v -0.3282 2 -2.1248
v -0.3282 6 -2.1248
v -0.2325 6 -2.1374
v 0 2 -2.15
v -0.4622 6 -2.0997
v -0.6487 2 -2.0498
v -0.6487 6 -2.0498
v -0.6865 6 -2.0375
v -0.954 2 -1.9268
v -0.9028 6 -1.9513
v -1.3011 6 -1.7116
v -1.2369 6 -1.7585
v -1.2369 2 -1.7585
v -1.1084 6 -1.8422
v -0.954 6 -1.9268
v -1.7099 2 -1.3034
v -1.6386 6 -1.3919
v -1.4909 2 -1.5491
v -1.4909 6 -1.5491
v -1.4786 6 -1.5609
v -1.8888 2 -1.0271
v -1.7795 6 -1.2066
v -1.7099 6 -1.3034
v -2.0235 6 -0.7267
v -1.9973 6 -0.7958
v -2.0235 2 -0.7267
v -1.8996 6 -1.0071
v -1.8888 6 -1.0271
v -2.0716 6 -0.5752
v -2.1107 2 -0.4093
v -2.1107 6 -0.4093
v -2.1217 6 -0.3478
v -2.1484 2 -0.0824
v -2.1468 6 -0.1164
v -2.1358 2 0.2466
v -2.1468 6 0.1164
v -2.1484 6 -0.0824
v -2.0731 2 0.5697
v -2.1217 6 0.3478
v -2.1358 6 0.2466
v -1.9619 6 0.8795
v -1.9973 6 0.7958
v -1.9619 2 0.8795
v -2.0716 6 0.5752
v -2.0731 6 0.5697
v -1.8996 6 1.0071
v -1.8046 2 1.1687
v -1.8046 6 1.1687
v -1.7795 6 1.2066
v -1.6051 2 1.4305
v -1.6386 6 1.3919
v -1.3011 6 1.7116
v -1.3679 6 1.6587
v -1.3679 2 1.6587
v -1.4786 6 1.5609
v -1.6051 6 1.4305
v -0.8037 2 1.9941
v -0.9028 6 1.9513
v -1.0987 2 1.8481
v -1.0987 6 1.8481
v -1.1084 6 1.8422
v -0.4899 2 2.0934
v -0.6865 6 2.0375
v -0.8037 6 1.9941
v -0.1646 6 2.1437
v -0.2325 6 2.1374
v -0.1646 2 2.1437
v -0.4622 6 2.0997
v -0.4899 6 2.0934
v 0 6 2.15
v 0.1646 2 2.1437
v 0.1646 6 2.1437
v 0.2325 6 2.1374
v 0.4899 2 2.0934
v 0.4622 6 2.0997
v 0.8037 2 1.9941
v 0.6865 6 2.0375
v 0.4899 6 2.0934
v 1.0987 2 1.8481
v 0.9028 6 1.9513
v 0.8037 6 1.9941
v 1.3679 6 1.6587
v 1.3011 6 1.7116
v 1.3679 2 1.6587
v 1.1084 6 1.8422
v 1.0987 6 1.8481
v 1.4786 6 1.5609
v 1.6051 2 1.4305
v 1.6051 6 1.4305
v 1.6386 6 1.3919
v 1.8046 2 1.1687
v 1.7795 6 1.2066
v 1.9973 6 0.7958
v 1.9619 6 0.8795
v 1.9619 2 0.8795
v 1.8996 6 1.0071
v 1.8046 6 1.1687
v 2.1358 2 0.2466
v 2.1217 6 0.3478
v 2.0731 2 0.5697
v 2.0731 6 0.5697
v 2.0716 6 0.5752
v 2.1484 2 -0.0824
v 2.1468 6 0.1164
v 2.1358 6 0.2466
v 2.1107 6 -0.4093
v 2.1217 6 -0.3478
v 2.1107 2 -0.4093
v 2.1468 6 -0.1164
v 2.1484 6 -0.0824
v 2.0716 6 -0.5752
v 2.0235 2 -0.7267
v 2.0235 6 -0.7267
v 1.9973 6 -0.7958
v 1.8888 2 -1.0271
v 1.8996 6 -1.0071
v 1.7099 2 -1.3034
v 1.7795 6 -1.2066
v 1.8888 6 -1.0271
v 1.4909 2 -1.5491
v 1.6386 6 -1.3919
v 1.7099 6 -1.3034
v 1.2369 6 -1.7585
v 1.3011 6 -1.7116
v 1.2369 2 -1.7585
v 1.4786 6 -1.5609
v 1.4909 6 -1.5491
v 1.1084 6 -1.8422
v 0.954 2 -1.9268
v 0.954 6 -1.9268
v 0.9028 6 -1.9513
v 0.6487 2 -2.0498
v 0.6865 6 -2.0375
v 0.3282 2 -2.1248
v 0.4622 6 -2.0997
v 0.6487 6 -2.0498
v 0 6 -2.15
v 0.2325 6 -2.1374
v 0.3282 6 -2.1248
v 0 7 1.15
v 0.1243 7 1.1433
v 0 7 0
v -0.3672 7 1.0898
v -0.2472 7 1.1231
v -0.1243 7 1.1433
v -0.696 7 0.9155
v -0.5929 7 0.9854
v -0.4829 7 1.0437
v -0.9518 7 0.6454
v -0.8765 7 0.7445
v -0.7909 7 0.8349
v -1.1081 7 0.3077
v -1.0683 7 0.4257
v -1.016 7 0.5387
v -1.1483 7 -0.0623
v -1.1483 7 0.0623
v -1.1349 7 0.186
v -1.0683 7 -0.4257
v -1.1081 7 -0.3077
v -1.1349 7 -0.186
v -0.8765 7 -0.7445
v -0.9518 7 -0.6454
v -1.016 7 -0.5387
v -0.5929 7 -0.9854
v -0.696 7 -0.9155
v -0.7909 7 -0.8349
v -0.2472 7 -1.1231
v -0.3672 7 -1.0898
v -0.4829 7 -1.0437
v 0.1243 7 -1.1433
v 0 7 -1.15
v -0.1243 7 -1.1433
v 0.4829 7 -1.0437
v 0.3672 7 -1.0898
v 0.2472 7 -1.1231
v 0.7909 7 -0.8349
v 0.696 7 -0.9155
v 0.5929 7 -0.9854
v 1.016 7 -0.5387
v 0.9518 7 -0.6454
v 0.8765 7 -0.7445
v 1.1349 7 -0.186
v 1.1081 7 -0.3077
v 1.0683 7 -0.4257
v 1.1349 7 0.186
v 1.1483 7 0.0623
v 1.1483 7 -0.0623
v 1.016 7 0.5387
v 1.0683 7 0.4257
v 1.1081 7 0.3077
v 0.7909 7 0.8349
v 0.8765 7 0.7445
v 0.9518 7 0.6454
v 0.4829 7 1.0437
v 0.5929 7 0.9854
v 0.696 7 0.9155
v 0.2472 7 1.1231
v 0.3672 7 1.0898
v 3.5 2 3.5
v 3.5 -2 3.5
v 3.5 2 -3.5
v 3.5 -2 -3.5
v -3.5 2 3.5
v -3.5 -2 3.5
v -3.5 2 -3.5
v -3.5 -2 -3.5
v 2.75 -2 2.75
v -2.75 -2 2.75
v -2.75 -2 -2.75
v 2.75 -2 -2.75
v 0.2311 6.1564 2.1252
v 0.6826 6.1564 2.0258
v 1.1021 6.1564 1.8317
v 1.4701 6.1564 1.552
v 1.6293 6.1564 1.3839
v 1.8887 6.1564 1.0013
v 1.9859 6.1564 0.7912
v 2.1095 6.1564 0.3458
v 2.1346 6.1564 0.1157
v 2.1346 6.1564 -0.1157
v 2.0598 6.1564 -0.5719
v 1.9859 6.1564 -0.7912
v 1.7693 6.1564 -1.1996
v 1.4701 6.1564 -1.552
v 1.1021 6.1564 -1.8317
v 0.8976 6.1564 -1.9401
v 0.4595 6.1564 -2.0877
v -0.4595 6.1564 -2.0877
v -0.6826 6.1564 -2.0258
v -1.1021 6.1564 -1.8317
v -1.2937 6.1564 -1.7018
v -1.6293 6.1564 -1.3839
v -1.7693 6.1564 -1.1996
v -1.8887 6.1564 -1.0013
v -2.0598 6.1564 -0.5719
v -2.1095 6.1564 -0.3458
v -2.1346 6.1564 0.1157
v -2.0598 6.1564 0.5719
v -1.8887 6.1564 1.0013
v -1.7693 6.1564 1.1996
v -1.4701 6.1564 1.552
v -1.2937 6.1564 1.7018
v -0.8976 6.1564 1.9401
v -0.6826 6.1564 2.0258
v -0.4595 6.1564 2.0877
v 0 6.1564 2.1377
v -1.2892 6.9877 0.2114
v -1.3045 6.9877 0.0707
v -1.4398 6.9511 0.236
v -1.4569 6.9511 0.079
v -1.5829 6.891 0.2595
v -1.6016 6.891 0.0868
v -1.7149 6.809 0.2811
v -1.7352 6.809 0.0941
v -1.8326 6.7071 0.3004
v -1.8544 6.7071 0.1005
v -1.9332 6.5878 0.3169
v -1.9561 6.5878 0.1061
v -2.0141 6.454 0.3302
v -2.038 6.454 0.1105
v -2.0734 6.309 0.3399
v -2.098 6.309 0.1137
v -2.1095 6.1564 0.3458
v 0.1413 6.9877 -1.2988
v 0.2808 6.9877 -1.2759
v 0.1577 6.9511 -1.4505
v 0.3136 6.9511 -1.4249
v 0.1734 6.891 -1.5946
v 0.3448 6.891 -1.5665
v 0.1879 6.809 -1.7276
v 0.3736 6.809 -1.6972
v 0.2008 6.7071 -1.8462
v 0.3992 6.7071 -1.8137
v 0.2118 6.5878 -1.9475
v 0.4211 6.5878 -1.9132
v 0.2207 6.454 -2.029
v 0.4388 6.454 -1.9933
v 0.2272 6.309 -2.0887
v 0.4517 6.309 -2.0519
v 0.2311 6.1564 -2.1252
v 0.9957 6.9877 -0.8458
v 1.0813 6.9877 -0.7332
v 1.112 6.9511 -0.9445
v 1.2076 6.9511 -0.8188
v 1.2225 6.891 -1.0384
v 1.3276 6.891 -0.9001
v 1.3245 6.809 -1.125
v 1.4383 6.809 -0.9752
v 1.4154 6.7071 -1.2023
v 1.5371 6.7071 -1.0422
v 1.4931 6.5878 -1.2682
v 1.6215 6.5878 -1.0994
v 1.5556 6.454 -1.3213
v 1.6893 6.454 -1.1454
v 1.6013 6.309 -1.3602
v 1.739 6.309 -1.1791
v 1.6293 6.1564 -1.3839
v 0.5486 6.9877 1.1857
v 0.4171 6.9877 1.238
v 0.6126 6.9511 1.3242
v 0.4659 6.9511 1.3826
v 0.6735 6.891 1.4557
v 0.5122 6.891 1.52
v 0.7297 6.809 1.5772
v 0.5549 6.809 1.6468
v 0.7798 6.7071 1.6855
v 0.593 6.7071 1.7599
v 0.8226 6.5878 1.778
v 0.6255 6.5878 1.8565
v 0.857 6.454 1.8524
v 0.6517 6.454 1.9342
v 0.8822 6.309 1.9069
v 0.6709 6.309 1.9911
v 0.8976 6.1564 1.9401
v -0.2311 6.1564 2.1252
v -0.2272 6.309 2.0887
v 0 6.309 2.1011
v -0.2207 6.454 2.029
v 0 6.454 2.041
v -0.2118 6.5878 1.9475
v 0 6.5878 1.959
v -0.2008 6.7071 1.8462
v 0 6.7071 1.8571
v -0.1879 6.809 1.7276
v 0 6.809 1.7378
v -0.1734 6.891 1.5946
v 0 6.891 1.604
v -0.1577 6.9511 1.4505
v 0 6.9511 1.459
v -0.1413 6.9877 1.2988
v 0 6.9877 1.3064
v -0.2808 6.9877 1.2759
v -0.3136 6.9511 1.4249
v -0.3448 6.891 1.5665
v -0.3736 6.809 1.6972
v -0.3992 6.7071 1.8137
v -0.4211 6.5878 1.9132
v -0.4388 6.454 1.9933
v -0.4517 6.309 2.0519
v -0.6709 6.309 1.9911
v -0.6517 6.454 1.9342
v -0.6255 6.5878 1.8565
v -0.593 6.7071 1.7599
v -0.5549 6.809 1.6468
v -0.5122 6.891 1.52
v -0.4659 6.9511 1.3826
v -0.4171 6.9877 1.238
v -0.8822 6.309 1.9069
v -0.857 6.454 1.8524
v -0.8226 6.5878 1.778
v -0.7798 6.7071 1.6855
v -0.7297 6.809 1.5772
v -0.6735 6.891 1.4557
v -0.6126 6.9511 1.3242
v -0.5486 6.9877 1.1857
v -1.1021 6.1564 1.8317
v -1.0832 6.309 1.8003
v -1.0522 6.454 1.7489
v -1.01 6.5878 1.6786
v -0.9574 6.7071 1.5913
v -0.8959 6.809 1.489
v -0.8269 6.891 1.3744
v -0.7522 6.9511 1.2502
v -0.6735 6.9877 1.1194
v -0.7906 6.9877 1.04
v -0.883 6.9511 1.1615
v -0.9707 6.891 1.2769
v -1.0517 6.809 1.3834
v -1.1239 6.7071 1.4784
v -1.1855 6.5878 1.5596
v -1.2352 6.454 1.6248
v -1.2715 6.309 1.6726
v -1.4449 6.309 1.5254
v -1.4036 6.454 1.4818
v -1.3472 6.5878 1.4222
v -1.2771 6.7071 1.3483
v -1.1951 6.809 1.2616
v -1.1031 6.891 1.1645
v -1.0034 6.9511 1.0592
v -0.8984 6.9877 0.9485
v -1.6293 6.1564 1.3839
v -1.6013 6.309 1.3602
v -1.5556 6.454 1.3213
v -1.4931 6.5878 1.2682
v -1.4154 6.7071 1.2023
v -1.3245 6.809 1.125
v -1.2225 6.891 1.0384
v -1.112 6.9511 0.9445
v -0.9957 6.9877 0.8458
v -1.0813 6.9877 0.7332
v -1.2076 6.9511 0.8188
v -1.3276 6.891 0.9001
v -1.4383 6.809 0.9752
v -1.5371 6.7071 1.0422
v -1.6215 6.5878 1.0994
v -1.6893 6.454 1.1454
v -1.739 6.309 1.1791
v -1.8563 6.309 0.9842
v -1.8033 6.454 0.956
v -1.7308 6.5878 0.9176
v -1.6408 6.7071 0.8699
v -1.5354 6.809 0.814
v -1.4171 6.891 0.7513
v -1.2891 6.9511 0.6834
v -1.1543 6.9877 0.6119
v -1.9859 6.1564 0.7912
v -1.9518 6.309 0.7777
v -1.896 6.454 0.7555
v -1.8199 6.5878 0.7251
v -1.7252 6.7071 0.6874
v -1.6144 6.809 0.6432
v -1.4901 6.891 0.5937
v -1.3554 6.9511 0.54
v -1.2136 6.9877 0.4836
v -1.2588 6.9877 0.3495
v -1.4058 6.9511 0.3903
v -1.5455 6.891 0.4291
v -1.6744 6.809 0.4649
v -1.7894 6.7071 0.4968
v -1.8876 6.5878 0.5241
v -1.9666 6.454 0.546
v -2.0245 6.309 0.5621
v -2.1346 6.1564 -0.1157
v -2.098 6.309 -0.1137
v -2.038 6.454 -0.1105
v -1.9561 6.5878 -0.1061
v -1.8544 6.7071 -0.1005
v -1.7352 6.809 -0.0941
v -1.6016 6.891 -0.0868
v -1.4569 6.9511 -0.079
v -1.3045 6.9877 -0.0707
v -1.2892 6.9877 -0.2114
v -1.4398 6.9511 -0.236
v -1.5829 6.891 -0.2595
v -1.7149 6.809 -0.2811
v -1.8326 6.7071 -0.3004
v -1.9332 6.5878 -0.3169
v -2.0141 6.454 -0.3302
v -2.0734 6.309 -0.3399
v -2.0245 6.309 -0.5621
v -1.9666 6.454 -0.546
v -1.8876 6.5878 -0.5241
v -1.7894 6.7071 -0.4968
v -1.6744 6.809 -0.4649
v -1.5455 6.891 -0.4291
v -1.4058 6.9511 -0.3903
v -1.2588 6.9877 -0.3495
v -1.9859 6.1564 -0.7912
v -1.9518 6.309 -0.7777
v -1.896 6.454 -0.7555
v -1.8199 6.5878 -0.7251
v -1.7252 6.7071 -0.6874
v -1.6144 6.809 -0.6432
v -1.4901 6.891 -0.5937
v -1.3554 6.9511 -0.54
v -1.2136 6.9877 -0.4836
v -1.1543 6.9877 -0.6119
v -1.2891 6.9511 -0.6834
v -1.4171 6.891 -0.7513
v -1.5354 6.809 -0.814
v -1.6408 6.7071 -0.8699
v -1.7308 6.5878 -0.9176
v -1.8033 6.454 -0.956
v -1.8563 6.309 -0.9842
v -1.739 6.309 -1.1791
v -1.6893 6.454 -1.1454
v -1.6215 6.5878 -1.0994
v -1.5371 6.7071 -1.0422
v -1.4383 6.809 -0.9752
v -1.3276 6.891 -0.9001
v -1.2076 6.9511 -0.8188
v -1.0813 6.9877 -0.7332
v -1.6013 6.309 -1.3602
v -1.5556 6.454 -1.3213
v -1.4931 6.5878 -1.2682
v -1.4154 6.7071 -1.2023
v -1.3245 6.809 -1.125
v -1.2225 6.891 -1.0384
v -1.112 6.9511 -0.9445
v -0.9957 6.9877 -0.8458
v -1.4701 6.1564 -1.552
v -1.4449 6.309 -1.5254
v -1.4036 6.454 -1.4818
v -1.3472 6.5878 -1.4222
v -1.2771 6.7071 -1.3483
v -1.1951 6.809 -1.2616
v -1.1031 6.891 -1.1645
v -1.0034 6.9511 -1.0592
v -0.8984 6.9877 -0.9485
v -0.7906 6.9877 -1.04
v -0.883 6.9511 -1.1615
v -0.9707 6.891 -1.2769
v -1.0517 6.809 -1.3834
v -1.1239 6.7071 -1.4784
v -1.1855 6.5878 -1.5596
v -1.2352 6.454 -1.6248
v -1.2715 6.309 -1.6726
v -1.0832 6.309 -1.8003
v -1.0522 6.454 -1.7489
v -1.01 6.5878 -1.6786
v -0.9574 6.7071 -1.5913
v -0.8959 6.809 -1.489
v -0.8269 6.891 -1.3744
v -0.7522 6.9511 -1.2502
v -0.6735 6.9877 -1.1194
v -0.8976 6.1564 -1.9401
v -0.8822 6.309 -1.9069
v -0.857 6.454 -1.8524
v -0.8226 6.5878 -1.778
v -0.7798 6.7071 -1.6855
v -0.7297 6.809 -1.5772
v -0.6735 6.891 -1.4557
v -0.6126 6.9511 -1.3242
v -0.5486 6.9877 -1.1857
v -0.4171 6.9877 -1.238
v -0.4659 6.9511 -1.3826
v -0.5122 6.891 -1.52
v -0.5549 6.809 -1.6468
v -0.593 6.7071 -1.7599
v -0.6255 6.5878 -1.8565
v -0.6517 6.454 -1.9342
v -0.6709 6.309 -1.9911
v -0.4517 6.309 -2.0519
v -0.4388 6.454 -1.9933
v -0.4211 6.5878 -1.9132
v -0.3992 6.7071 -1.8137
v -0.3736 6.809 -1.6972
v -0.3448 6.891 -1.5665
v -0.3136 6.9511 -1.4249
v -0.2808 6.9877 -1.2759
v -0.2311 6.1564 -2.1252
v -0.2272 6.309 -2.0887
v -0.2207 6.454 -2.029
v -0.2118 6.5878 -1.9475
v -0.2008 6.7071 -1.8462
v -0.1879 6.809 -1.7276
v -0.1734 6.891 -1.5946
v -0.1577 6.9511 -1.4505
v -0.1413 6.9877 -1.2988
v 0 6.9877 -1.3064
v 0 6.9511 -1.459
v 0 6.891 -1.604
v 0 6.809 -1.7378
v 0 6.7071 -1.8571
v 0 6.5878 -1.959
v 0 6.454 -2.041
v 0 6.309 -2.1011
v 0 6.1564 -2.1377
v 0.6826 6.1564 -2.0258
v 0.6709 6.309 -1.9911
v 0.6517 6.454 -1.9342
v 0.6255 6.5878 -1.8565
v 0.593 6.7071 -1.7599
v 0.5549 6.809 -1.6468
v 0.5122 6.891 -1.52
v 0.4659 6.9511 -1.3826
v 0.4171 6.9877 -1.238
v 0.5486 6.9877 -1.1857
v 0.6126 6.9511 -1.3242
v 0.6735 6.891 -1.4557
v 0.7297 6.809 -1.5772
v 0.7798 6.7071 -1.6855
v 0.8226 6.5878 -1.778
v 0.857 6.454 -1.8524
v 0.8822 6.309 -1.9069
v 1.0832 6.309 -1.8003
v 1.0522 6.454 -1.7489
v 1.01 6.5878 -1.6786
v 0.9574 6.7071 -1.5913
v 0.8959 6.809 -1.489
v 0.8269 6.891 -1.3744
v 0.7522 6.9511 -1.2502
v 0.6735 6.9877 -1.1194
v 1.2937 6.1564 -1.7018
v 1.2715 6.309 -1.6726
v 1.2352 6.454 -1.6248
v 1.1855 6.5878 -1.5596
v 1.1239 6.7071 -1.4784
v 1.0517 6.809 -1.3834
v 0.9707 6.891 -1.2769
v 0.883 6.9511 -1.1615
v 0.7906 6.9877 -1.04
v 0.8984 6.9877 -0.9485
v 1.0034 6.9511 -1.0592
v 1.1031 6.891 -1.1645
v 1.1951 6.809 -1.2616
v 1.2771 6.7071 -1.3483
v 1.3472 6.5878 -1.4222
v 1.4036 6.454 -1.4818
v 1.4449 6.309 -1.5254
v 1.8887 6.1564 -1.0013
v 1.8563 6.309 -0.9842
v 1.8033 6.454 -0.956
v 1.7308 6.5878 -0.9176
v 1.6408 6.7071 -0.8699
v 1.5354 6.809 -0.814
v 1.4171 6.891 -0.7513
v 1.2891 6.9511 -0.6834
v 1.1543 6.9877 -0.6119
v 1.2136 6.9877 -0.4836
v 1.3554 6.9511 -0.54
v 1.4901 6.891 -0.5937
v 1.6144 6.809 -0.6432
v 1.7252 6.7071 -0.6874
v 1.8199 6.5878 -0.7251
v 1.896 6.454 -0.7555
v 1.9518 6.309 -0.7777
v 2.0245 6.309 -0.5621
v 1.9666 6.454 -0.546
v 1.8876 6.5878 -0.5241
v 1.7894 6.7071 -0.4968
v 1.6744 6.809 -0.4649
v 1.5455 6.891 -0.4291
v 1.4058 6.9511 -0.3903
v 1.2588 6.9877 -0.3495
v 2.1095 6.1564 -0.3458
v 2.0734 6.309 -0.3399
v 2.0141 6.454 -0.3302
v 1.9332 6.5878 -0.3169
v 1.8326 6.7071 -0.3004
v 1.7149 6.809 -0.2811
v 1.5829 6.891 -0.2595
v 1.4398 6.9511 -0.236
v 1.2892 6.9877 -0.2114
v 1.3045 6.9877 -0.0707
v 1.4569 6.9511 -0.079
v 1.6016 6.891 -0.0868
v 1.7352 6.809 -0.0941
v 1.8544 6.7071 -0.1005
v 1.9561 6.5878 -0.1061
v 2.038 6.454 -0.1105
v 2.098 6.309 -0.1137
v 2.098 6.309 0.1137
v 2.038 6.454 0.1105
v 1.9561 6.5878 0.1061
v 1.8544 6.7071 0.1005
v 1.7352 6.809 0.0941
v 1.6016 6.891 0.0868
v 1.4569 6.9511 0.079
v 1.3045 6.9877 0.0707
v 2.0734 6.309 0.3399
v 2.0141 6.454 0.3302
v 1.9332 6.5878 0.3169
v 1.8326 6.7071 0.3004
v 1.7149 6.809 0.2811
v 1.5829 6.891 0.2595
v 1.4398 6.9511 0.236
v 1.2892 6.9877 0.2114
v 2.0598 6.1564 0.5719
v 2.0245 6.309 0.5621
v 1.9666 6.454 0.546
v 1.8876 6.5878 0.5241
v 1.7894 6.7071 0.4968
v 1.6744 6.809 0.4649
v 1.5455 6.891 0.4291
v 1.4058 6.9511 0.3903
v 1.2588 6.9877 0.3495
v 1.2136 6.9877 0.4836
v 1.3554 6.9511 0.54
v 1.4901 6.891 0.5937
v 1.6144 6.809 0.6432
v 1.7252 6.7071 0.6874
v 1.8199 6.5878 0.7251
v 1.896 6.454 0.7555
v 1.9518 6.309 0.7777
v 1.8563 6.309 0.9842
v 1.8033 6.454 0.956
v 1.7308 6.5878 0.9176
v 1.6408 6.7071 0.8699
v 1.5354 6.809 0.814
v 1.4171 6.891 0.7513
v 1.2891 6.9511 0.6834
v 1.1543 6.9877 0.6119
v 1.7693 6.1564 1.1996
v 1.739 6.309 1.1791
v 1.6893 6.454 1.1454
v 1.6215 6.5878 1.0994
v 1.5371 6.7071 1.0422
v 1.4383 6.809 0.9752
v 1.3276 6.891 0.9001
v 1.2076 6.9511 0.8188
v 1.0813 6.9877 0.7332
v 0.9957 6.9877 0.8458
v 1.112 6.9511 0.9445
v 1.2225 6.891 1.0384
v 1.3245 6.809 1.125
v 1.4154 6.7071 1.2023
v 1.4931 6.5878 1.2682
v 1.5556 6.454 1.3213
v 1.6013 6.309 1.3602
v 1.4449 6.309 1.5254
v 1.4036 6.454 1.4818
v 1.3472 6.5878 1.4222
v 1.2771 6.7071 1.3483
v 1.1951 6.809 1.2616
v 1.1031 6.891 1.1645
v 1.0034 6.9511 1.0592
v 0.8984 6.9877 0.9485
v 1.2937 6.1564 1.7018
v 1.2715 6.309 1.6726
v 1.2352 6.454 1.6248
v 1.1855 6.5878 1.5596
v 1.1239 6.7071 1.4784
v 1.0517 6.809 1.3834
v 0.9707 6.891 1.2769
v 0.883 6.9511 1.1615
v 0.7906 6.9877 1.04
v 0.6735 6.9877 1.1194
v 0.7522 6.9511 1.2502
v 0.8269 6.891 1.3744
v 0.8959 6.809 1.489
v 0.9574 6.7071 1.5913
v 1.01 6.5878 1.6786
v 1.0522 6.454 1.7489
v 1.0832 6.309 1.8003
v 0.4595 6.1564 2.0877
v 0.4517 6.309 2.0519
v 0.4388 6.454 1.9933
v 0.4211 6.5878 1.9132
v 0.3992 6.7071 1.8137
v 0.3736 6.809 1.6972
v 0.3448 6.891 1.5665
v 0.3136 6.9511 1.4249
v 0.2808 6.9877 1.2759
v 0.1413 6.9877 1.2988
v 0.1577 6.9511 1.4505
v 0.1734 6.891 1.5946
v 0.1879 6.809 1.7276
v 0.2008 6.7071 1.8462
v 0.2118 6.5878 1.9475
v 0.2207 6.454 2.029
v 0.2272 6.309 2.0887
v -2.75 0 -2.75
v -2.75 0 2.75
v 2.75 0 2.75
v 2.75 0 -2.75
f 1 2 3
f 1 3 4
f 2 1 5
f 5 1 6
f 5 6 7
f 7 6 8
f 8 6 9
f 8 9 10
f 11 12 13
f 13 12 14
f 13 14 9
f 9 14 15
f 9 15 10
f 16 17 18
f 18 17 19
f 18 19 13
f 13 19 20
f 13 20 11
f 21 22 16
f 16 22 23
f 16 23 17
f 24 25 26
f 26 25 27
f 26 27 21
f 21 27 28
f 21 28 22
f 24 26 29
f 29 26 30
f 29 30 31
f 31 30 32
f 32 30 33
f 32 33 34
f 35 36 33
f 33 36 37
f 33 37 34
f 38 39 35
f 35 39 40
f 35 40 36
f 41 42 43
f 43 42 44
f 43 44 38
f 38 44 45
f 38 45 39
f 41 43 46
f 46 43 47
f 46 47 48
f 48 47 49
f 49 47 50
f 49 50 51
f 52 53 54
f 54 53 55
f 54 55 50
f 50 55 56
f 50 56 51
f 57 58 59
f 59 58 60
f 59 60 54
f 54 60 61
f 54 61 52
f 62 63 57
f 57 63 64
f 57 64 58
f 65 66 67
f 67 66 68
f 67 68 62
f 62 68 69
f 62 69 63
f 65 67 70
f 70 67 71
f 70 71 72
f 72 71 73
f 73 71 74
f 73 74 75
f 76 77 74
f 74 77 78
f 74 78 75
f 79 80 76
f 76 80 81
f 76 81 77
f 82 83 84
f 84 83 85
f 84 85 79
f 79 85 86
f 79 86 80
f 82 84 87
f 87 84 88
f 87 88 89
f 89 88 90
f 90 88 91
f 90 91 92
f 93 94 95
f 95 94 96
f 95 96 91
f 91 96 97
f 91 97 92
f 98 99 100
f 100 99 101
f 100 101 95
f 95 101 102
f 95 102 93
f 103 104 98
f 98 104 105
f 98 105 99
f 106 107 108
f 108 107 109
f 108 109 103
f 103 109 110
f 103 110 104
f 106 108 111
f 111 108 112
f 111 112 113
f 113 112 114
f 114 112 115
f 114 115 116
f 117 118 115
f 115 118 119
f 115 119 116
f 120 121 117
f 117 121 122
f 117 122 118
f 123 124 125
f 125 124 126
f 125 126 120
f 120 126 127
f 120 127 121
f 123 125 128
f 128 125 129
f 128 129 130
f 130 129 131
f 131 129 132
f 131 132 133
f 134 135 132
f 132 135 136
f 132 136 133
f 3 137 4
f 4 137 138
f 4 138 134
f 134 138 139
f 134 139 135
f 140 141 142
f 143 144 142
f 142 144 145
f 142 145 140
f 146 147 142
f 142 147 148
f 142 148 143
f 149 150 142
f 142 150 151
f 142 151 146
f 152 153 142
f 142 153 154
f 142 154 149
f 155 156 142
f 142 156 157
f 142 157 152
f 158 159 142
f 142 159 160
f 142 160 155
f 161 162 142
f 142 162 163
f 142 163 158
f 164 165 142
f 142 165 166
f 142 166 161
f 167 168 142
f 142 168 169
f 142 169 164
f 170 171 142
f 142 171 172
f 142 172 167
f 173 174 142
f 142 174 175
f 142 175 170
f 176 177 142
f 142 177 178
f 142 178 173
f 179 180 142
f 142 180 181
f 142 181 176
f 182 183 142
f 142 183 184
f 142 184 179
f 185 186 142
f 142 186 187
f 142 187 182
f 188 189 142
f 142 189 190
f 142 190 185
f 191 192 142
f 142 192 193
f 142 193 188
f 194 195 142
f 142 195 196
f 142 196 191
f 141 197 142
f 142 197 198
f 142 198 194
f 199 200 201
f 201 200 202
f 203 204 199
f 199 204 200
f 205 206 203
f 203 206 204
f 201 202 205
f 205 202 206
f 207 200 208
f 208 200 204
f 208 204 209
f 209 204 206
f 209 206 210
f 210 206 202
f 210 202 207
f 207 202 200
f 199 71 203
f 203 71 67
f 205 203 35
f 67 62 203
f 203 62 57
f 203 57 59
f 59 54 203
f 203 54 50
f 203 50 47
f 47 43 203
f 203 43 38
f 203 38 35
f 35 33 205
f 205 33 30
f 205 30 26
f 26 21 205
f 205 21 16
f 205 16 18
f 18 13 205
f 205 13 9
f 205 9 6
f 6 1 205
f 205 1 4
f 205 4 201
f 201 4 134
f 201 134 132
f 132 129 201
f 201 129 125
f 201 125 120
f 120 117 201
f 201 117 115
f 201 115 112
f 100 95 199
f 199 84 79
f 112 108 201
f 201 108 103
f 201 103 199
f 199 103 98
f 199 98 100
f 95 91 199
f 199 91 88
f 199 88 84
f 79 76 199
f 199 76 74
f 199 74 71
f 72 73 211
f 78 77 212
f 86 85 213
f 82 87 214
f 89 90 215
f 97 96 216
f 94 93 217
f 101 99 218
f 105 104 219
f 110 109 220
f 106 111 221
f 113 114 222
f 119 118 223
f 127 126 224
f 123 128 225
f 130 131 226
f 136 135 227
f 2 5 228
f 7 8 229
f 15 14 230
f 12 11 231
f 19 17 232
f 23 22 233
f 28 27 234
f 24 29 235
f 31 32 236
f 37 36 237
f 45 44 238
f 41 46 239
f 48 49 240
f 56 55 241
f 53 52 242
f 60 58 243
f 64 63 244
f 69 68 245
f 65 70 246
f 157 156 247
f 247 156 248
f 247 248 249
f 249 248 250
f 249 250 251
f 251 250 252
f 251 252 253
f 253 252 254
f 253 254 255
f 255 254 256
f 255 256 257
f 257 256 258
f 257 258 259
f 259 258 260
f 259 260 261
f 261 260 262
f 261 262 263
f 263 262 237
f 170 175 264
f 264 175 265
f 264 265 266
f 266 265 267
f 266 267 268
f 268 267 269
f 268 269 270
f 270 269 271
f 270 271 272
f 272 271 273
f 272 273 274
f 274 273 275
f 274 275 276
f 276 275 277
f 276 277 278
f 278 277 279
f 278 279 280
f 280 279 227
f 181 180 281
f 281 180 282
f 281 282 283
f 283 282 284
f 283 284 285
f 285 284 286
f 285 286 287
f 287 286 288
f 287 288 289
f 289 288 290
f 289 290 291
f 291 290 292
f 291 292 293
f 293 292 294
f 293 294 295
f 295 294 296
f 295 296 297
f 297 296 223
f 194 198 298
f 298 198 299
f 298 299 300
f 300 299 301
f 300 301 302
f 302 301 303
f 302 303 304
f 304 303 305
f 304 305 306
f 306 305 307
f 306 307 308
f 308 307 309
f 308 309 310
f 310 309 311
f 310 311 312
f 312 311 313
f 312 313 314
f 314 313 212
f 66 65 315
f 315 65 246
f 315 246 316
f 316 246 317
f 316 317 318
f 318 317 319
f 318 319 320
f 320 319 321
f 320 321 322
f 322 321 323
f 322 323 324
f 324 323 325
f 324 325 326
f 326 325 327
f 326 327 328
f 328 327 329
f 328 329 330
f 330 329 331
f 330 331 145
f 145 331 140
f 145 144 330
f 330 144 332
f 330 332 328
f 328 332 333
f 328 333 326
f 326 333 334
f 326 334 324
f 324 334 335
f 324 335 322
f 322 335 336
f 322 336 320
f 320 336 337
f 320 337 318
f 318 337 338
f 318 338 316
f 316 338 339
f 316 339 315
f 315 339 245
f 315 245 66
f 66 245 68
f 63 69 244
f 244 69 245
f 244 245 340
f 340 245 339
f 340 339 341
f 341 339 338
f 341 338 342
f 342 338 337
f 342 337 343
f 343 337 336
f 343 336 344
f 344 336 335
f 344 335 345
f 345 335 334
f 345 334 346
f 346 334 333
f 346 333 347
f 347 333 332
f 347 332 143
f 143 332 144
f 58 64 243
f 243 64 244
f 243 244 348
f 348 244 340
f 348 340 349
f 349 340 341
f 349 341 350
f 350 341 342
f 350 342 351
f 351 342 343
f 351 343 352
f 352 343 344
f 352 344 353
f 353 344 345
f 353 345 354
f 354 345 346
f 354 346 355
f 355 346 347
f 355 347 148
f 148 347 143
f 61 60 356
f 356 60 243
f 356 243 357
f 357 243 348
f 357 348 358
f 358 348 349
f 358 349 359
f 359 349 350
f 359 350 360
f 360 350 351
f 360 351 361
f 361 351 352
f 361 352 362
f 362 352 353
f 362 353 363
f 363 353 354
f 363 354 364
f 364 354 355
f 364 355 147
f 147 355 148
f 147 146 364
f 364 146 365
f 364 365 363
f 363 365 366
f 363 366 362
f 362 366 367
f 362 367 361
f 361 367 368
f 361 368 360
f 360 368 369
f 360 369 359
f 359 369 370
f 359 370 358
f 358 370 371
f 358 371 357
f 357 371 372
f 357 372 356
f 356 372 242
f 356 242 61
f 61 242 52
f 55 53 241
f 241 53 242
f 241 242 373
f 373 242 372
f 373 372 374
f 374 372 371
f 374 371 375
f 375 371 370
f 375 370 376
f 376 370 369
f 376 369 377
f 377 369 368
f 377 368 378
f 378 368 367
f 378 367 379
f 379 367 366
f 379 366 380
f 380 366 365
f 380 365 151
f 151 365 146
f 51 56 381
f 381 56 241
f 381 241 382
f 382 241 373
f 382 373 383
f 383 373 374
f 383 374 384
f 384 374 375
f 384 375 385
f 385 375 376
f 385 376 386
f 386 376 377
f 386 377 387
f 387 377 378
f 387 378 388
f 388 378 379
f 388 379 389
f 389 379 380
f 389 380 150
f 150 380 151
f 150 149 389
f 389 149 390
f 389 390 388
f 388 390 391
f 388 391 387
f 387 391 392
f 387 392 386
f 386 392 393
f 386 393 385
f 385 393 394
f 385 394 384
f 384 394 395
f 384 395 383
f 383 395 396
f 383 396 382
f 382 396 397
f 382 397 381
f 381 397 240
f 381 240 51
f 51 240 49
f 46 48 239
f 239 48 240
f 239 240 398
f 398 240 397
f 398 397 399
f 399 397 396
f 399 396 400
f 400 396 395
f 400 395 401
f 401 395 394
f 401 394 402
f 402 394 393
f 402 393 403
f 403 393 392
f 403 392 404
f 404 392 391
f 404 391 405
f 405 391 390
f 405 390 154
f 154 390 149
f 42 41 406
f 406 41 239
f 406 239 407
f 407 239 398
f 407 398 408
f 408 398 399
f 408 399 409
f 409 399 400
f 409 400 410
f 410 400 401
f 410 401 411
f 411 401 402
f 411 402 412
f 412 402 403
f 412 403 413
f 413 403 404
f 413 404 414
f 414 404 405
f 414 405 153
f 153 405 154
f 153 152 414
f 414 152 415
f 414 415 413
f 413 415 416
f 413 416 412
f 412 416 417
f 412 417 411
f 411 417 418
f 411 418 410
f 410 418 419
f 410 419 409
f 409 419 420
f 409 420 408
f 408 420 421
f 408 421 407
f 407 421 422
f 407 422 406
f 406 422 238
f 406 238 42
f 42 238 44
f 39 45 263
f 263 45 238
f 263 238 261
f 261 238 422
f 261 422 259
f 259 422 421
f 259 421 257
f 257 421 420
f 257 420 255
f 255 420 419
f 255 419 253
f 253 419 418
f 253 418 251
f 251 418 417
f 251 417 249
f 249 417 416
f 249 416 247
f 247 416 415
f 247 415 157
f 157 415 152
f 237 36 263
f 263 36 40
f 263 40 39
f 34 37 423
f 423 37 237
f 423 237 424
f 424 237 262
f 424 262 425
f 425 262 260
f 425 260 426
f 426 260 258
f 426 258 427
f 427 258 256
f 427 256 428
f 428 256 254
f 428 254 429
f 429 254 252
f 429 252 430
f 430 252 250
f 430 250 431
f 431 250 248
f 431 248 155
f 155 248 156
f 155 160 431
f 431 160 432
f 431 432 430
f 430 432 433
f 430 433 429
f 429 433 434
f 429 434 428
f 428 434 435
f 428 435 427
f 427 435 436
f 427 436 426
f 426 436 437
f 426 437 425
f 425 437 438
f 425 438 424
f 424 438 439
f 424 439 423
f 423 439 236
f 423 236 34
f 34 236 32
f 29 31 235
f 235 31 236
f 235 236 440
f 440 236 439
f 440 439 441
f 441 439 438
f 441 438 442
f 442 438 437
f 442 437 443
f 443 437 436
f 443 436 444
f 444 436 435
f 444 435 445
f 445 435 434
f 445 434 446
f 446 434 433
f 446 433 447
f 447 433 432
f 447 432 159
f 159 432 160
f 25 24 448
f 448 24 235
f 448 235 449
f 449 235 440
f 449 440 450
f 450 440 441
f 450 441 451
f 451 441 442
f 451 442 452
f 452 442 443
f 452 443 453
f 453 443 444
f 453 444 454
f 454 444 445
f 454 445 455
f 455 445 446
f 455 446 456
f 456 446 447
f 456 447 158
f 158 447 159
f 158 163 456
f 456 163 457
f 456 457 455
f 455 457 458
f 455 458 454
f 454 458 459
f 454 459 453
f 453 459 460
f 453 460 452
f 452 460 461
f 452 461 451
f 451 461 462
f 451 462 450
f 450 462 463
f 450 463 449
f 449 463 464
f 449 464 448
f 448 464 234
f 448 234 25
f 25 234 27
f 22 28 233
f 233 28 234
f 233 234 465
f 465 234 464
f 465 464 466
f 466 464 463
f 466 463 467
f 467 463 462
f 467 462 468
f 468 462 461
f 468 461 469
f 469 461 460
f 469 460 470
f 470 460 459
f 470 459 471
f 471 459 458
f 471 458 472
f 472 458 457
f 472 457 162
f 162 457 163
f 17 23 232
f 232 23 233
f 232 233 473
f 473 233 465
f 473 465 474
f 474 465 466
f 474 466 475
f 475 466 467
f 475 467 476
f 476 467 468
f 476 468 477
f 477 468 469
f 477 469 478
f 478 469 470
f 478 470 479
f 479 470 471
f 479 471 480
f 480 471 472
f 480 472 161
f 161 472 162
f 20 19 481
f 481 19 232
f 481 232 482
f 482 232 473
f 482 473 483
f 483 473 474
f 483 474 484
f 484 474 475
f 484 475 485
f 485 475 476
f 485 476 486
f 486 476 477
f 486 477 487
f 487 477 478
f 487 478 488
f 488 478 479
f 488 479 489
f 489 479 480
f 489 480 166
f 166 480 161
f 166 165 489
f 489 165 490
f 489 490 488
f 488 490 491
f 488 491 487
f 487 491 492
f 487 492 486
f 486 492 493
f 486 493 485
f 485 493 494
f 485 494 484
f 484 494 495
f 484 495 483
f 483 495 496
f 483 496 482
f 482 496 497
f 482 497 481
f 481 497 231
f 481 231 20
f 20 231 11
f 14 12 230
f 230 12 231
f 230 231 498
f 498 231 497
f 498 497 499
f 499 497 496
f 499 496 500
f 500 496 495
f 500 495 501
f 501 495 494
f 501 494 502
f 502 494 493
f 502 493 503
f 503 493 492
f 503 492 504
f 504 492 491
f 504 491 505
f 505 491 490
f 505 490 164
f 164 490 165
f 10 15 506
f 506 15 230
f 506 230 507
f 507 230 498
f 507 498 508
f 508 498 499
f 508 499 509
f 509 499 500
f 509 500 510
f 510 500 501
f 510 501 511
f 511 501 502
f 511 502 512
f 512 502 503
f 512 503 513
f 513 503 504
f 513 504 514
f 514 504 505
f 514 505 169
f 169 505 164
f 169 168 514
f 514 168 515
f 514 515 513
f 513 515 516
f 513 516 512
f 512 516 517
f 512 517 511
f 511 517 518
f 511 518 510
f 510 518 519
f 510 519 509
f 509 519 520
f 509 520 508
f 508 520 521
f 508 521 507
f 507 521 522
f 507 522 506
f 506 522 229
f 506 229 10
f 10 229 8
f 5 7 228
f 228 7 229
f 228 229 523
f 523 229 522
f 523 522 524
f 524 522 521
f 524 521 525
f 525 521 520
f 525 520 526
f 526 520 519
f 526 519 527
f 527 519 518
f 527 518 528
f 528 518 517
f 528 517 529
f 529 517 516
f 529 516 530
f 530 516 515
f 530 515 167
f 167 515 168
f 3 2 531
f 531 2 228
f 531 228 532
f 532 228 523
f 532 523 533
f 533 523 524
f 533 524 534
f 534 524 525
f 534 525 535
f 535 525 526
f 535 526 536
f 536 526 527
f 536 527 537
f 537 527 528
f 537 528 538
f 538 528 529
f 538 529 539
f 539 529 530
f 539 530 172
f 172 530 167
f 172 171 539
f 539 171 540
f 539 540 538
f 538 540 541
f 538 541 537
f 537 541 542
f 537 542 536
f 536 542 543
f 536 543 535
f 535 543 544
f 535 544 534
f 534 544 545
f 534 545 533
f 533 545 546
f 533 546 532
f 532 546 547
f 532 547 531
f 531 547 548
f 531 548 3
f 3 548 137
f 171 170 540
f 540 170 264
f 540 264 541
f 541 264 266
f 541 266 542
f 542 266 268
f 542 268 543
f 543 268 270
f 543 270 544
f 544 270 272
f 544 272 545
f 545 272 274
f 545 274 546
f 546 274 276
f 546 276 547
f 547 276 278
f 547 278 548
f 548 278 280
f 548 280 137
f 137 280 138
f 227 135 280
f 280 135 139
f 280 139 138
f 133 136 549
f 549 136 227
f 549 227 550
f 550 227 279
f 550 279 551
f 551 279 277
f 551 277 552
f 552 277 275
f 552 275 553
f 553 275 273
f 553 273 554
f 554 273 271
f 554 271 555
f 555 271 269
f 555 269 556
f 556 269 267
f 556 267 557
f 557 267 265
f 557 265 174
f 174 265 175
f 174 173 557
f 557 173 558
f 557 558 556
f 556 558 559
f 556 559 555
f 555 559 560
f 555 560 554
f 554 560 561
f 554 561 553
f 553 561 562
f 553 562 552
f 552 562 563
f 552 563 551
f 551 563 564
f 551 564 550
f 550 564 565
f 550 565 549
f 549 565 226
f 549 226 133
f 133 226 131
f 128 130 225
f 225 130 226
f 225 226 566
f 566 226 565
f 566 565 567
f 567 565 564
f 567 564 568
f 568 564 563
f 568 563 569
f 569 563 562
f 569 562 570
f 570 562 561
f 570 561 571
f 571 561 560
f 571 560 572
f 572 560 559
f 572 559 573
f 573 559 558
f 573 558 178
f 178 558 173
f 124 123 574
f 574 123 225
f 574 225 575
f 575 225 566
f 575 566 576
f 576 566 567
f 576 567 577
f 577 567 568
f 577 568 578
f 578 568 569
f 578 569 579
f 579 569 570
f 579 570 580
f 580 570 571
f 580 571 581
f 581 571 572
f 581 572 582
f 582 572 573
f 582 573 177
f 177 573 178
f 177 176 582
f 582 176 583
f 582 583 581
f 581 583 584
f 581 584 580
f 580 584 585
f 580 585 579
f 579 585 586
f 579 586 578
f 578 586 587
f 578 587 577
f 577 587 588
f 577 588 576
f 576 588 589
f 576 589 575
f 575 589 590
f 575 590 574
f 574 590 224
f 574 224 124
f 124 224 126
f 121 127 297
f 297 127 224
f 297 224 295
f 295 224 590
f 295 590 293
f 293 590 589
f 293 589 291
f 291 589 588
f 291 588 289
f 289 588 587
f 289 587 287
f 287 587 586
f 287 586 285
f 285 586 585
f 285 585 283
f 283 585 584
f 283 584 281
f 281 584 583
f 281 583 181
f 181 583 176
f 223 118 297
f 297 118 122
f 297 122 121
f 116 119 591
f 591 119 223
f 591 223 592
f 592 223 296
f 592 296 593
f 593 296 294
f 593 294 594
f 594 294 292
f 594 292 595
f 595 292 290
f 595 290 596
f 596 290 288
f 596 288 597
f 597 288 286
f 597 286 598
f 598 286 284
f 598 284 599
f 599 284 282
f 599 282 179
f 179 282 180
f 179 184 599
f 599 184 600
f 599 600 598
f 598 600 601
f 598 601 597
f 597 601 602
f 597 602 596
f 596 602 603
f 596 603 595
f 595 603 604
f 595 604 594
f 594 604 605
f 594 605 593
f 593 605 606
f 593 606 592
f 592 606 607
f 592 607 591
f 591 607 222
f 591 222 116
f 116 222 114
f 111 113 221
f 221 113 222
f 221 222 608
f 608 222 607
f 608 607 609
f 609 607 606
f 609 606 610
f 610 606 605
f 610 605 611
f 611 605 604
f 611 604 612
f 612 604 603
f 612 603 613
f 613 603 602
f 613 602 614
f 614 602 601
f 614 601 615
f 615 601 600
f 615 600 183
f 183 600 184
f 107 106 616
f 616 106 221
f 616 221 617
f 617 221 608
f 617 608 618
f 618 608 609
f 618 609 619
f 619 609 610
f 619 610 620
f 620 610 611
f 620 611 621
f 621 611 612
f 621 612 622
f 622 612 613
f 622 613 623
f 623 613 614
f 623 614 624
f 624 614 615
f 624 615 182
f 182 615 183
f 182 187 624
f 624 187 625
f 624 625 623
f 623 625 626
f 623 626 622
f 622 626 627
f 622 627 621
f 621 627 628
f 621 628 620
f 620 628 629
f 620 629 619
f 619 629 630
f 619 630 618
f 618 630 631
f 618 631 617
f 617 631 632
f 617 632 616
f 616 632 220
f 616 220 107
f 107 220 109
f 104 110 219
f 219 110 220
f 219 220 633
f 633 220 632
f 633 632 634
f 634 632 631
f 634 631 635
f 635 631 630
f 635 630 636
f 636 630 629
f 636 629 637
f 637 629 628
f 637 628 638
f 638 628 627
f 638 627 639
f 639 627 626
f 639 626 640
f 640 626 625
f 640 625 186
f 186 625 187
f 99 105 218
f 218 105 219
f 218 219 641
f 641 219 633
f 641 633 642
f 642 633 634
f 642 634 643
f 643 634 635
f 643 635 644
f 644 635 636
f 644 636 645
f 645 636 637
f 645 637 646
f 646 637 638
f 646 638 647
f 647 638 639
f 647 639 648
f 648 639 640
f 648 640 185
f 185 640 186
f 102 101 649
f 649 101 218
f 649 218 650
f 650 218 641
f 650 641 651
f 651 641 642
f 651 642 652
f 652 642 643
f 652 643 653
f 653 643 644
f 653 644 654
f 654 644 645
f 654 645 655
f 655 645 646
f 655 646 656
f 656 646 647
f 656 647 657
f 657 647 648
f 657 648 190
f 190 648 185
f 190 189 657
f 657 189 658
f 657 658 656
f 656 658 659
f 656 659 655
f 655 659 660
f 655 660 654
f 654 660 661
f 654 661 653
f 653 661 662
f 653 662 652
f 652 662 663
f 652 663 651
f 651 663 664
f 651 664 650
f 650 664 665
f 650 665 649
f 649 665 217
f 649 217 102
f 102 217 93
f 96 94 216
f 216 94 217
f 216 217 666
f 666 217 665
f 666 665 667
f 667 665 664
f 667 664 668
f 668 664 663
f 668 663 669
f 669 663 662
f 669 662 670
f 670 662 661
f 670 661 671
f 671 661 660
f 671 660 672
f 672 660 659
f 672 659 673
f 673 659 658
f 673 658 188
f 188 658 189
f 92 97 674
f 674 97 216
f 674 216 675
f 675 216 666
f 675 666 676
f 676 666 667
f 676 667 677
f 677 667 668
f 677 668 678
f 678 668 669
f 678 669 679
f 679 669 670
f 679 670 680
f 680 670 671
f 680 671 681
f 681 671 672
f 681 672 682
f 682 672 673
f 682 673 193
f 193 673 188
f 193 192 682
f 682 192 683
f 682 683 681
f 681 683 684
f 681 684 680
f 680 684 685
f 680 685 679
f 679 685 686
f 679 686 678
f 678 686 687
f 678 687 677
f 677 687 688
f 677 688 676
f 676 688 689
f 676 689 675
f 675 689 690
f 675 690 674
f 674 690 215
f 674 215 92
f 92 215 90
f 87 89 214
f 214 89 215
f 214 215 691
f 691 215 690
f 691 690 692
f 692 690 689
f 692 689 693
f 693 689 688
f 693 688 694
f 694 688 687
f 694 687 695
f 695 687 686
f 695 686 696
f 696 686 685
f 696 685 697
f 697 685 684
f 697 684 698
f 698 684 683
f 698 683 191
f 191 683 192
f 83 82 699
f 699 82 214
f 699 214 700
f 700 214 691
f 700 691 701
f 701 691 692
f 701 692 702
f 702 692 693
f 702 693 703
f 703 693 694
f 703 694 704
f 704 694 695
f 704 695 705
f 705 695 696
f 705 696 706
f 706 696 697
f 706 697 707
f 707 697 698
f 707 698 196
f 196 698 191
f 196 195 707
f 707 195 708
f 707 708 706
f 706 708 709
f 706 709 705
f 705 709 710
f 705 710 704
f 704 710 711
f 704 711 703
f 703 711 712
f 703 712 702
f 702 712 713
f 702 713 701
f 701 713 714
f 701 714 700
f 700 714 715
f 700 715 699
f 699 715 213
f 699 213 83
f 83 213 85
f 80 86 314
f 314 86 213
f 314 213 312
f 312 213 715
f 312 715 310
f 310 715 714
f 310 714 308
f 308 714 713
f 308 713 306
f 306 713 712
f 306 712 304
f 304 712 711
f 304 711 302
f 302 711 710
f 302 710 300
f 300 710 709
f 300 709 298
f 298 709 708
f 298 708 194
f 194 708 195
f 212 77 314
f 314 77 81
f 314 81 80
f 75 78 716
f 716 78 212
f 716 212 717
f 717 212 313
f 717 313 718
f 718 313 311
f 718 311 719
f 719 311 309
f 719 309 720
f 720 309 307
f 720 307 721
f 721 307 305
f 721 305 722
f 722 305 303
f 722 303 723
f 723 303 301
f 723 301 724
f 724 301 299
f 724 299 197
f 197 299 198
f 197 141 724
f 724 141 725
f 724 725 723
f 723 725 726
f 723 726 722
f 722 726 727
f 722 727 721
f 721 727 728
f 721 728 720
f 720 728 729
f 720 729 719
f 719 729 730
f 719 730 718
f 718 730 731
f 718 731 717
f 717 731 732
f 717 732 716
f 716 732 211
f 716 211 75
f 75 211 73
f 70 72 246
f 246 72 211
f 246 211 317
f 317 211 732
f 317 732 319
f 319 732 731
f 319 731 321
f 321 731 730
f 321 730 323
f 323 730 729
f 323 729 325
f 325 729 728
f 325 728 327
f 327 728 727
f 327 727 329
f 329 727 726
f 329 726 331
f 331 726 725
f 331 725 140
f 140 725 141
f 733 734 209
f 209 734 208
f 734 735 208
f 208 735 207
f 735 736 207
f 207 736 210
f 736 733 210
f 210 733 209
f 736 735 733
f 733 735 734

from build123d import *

# Parameters (mm, degrees)
SKETCH1_R                = 2.15
BOSS_EXTRUDE1_DEPTH      = 7
BOSS_EXTRUDE2_DEPTH      = 2
BOSS_EXTRUDE2_DEPTH_BACK = 2
SKETCH3_W                = 7
SKETCH3_H                = 7
FILLET1_R                = 1
SKETCH5_W                = 5.5
SKETCH5_H                = 5.5
CUT_EXTRUDE1_DEPTH       = 2


with BuildPart() as part:
    # Sketch1 → Boss-Extrude1 (new body)
    with BuildSketch(Plane(origin=(0, 0, 0), x_dir=(1, 0, 0), z_dir=(0, 1, 0))):
        Circle(SKETCH1_R)
    extrude(amount=BOSS_EXTRUDE1_DEPTH)

    # Sketch3 → Boss-Extrude2 (add, two sides: drawn at the far end of the back side and taken through both)
    with BuildSketch(Plane.XZ.offset(-BOSS_EXTRUDE2_DEPTH_BACK)):
        Rectangle(SKETCH3_W, SKETCH3_H)
    extrude(amount=BOSS_EXTRUDE2_DEPTH + BOSS_EXTRUDE2_DEPTH_BACK)

    # Fillet1
    fillet1_edges = [part.edges().sort_by_distance(p)[0] for p in [
        (-2.15, 7, 0),
    ]]
    fillet(fillet1_edges, radius=FILLET1_R)

    # Sketch5 → Cut-Extrude1 (cut)
    with BuildSketch(Plane.XZ.offset(2)):
        Rectangle(SKETCH5_W, SKETCH5_H)
    extrude(amount=-CUT_EXTRUDE1_DEPTH, mode=Mode.SUBTRACT)


solid = part.part
